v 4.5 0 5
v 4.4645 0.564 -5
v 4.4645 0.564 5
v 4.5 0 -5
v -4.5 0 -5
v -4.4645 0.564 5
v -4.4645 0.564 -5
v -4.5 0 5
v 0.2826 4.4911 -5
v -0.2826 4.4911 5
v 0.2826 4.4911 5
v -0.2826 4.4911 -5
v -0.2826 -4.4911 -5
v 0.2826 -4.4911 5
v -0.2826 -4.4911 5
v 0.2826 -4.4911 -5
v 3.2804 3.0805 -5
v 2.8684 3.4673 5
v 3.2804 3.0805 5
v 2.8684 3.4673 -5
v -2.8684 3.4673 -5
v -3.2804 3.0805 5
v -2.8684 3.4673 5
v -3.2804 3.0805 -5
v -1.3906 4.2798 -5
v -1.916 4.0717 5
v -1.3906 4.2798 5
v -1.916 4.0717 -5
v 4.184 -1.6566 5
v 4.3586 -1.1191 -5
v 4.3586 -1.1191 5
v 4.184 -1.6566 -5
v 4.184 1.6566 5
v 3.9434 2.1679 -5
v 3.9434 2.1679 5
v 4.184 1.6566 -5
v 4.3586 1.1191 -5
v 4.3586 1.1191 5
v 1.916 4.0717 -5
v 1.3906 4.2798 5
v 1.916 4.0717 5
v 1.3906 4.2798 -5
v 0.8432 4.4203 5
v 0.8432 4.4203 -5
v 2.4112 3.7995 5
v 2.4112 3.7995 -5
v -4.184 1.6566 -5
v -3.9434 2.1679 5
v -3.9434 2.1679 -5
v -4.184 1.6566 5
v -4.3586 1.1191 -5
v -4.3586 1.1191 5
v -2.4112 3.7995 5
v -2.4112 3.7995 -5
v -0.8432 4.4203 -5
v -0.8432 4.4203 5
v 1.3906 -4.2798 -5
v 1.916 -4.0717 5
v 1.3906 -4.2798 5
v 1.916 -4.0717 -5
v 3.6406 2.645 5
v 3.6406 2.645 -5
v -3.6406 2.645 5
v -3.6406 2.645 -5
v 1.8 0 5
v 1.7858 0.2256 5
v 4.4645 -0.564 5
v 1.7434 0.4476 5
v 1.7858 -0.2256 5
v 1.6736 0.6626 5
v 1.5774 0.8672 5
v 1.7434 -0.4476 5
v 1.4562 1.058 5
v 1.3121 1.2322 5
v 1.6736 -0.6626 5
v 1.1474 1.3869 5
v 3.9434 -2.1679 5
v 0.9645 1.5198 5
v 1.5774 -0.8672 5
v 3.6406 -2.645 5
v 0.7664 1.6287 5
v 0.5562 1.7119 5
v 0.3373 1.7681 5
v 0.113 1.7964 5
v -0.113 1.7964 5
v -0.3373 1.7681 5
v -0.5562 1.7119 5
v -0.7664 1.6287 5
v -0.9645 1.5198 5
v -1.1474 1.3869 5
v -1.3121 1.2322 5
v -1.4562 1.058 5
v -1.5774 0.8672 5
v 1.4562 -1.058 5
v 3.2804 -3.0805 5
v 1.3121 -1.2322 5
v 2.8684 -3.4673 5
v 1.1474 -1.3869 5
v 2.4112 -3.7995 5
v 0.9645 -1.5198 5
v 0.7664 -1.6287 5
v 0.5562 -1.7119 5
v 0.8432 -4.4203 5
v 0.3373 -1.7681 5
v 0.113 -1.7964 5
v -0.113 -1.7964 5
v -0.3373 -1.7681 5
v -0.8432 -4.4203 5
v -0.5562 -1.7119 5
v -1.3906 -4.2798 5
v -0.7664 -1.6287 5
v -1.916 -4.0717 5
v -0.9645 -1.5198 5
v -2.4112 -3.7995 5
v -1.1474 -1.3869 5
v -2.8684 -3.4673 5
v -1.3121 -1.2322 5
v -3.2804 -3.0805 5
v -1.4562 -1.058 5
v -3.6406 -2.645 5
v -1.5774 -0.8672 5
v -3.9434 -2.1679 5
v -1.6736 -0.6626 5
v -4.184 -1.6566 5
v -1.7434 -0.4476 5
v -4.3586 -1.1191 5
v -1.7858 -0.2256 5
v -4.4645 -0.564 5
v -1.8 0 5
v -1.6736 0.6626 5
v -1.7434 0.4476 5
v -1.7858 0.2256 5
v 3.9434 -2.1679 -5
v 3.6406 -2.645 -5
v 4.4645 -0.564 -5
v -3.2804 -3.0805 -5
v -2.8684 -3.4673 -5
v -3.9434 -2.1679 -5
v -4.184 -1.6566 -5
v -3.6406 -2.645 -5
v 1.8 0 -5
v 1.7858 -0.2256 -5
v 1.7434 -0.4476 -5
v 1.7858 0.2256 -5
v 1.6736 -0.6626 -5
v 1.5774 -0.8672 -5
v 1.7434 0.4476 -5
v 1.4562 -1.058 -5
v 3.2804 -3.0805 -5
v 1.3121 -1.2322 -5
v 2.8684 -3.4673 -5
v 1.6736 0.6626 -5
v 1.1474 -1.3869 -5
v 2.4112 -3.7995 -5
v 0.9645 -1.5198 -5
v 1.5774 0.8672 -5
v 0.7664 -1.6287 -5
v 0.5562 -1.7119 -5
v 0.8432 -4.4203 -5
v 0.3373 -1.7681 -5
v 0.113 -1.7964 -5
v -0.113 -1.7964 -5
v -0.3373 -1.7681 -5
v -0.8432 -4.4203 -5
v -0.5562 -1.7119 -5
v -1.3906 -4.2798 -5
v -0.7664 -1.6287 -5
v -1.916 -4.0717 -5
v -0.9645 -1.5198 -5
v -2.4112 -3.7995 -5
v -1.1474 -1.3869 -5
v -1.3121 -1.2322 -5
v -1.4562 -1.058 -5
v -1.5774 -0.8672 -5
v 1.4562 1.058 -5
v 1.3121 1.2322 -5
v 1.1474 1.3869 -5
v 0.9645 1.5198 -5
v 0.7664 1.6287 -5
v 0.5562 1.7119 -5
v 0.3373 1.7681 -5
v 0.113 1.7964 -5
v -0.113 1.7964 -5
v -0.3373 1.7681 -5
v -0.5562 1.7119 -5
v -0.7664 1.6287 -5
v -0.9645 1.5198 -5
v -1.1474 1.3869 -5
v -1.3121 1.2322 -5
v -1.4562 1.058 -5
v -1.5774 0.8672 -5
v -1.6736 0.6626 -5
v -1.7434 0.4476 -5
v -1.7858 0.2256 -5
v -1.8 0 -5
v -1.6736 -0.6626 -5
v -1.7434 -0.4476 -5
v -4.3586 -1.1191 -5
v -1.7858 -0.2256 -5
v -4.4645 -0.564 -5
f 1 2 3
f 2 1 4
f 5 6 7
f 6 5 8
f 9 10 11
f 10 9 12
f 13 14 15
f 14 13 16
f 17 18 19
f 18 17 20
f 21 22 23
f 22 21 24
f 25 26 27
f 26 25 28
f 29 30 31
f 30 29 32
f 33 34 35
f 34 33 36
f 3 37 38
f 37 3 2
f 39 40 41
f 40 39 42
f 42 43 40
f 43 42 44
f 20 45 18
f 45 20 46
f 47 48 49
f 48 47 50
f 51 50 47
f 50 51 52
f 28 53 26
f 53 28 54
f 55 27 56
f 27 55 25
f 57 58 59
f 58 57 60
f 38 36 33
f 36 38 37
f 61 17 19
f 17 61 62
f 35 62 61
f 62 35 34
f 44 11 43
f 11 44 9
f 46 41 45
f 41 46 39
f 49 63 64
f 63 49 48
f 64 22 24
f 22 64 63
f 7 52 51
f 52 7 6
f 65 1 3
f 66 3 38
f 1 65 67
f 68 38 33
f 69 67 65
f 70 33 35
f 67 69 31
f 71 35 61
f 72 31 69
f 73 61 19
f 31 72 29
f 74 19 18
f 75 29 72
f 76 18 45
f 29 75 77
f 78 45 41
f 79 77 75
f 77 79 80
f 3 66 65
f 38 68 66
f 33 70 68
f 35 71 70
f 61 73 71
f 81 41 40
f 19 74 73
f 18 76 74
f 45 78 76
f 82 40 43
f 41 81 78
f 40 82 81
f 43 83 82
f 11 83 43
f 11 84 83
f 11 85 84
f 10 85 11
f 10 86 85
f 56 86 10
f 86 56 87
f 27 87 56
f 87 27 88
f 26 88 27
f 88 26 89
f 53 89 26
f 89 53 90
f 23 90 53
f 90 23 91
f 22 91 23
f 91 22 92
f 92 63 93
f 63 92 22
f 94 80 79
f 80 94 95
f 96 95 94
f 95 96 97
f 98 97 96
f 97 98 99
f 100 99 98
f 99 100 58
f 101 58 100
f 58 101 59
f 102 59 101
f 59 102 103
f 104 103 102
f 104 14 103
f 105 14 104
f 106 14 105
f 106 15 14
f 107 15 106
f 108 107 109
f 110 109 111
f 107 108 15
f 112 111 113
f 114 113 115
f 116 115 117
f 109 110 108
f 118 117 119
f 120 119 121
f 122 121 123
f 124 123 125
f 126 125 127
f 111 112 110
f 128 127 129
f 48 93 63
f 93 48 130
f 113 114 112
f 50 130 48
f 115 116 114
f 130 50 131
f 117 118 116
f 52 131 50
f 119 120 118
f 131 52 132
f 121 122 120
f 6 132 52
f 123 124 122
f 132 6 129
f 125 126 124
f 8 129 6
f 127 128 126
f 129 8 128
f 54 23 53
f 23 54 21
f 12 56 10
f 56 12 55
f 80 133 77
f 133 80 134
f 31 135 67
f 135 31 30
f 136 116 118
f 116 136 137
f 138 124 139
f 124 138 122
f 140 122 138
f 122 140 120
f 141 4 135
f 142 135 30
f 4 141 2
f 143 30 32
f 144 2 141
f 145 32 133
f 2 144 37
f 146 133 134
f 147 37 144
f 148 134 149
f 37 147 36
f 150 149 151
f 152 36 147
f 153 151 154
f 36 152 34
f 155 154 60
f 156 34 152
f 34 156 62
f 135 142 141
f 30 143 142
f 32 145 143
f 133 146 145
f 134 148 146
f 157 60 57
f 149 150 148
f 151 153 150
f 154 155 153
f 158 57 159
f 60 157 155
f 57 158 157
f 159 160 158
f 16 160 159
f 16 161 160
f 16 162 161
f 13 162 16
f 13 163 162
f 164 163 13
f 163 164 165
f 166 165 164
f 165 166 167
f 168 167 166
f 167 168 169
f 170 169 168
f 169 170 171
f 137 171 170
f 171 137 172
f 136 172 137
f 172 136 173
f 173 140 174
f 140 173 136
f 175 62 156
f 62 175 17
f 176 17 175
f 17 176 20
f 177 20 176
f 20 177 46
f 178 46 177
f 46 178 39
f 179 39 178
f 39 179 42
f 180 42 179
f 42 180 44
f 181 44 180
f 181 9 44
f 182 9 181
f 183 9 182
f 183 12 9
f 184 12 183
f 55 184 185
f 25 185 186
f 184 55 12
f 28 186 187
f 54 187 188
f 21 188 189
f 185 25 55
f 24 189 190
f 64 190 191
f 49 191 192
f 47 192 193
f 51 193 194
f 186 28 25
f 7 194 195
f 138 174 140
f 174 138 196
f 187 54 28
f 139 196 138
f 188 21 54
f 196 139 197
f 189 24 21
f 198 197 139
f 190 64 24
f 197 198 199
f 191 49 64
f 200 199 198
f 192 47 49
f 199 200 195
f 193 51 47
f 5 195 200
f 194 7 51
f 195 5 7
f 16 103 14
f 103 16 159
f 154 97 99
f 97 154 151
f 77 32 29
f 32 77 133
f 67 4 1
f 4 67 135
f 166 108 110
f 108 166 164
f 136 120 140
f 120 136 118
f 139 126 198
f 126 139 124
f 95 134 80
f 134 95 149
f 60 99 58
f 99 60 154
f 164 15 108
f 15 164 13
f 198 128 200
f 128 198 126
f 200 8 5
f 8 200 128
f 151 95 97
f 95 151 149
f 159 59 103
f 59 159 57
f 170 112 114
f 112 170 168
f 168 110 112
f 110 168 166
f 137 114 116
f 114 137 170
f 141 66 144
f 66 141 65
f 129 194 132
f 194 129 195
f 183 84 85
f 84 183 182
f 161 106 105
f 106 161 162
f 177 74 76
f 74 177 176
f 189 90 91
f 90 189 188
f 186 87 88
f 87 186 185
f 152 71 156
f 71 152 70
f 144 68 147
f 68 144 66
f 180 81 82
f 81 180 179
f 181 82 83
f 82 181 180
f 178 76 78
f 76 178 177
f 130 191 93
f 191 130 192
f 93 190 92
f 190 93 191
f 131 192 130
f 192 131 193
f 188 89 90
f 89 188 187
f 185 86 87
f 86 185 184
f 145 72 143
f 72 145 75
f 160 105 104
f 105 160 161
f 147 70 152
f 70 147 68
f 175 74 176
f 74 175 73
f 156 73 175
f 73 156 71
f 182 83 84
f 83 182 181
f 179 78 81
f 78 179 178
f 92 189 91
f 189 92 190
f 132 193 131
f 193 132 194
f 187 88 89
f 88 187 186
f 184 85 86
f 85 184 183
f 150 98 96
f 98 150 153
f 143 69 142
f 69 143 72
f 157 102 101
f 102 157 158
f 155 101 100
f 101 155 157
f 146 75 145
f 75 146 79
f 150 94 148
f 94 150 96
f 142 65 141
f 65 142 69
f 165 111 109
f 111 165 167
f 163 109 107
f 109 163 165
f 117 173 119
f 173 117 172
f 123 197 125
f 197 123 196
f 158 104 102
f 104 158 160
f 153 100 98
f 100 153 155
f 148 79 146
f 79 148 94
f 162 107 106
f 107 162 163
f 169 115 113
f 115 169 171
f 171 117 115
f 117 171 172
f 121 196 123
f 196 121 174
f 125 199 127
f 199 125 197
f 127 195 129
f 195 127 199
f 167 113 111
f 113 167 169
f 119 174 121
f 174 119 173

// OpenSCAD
$fn = 50;


difference() {
	union() {
		translate(v = [0, 0, -5.0000000000]) {
			cylinder(h = 10, r = 4.5000000000);
		}
	}
	union() {
		translate(v = [0, 0, -100.0000000000]) {
			cylinder(h = 200, r = 1.8000000000);
		}
	}
}
